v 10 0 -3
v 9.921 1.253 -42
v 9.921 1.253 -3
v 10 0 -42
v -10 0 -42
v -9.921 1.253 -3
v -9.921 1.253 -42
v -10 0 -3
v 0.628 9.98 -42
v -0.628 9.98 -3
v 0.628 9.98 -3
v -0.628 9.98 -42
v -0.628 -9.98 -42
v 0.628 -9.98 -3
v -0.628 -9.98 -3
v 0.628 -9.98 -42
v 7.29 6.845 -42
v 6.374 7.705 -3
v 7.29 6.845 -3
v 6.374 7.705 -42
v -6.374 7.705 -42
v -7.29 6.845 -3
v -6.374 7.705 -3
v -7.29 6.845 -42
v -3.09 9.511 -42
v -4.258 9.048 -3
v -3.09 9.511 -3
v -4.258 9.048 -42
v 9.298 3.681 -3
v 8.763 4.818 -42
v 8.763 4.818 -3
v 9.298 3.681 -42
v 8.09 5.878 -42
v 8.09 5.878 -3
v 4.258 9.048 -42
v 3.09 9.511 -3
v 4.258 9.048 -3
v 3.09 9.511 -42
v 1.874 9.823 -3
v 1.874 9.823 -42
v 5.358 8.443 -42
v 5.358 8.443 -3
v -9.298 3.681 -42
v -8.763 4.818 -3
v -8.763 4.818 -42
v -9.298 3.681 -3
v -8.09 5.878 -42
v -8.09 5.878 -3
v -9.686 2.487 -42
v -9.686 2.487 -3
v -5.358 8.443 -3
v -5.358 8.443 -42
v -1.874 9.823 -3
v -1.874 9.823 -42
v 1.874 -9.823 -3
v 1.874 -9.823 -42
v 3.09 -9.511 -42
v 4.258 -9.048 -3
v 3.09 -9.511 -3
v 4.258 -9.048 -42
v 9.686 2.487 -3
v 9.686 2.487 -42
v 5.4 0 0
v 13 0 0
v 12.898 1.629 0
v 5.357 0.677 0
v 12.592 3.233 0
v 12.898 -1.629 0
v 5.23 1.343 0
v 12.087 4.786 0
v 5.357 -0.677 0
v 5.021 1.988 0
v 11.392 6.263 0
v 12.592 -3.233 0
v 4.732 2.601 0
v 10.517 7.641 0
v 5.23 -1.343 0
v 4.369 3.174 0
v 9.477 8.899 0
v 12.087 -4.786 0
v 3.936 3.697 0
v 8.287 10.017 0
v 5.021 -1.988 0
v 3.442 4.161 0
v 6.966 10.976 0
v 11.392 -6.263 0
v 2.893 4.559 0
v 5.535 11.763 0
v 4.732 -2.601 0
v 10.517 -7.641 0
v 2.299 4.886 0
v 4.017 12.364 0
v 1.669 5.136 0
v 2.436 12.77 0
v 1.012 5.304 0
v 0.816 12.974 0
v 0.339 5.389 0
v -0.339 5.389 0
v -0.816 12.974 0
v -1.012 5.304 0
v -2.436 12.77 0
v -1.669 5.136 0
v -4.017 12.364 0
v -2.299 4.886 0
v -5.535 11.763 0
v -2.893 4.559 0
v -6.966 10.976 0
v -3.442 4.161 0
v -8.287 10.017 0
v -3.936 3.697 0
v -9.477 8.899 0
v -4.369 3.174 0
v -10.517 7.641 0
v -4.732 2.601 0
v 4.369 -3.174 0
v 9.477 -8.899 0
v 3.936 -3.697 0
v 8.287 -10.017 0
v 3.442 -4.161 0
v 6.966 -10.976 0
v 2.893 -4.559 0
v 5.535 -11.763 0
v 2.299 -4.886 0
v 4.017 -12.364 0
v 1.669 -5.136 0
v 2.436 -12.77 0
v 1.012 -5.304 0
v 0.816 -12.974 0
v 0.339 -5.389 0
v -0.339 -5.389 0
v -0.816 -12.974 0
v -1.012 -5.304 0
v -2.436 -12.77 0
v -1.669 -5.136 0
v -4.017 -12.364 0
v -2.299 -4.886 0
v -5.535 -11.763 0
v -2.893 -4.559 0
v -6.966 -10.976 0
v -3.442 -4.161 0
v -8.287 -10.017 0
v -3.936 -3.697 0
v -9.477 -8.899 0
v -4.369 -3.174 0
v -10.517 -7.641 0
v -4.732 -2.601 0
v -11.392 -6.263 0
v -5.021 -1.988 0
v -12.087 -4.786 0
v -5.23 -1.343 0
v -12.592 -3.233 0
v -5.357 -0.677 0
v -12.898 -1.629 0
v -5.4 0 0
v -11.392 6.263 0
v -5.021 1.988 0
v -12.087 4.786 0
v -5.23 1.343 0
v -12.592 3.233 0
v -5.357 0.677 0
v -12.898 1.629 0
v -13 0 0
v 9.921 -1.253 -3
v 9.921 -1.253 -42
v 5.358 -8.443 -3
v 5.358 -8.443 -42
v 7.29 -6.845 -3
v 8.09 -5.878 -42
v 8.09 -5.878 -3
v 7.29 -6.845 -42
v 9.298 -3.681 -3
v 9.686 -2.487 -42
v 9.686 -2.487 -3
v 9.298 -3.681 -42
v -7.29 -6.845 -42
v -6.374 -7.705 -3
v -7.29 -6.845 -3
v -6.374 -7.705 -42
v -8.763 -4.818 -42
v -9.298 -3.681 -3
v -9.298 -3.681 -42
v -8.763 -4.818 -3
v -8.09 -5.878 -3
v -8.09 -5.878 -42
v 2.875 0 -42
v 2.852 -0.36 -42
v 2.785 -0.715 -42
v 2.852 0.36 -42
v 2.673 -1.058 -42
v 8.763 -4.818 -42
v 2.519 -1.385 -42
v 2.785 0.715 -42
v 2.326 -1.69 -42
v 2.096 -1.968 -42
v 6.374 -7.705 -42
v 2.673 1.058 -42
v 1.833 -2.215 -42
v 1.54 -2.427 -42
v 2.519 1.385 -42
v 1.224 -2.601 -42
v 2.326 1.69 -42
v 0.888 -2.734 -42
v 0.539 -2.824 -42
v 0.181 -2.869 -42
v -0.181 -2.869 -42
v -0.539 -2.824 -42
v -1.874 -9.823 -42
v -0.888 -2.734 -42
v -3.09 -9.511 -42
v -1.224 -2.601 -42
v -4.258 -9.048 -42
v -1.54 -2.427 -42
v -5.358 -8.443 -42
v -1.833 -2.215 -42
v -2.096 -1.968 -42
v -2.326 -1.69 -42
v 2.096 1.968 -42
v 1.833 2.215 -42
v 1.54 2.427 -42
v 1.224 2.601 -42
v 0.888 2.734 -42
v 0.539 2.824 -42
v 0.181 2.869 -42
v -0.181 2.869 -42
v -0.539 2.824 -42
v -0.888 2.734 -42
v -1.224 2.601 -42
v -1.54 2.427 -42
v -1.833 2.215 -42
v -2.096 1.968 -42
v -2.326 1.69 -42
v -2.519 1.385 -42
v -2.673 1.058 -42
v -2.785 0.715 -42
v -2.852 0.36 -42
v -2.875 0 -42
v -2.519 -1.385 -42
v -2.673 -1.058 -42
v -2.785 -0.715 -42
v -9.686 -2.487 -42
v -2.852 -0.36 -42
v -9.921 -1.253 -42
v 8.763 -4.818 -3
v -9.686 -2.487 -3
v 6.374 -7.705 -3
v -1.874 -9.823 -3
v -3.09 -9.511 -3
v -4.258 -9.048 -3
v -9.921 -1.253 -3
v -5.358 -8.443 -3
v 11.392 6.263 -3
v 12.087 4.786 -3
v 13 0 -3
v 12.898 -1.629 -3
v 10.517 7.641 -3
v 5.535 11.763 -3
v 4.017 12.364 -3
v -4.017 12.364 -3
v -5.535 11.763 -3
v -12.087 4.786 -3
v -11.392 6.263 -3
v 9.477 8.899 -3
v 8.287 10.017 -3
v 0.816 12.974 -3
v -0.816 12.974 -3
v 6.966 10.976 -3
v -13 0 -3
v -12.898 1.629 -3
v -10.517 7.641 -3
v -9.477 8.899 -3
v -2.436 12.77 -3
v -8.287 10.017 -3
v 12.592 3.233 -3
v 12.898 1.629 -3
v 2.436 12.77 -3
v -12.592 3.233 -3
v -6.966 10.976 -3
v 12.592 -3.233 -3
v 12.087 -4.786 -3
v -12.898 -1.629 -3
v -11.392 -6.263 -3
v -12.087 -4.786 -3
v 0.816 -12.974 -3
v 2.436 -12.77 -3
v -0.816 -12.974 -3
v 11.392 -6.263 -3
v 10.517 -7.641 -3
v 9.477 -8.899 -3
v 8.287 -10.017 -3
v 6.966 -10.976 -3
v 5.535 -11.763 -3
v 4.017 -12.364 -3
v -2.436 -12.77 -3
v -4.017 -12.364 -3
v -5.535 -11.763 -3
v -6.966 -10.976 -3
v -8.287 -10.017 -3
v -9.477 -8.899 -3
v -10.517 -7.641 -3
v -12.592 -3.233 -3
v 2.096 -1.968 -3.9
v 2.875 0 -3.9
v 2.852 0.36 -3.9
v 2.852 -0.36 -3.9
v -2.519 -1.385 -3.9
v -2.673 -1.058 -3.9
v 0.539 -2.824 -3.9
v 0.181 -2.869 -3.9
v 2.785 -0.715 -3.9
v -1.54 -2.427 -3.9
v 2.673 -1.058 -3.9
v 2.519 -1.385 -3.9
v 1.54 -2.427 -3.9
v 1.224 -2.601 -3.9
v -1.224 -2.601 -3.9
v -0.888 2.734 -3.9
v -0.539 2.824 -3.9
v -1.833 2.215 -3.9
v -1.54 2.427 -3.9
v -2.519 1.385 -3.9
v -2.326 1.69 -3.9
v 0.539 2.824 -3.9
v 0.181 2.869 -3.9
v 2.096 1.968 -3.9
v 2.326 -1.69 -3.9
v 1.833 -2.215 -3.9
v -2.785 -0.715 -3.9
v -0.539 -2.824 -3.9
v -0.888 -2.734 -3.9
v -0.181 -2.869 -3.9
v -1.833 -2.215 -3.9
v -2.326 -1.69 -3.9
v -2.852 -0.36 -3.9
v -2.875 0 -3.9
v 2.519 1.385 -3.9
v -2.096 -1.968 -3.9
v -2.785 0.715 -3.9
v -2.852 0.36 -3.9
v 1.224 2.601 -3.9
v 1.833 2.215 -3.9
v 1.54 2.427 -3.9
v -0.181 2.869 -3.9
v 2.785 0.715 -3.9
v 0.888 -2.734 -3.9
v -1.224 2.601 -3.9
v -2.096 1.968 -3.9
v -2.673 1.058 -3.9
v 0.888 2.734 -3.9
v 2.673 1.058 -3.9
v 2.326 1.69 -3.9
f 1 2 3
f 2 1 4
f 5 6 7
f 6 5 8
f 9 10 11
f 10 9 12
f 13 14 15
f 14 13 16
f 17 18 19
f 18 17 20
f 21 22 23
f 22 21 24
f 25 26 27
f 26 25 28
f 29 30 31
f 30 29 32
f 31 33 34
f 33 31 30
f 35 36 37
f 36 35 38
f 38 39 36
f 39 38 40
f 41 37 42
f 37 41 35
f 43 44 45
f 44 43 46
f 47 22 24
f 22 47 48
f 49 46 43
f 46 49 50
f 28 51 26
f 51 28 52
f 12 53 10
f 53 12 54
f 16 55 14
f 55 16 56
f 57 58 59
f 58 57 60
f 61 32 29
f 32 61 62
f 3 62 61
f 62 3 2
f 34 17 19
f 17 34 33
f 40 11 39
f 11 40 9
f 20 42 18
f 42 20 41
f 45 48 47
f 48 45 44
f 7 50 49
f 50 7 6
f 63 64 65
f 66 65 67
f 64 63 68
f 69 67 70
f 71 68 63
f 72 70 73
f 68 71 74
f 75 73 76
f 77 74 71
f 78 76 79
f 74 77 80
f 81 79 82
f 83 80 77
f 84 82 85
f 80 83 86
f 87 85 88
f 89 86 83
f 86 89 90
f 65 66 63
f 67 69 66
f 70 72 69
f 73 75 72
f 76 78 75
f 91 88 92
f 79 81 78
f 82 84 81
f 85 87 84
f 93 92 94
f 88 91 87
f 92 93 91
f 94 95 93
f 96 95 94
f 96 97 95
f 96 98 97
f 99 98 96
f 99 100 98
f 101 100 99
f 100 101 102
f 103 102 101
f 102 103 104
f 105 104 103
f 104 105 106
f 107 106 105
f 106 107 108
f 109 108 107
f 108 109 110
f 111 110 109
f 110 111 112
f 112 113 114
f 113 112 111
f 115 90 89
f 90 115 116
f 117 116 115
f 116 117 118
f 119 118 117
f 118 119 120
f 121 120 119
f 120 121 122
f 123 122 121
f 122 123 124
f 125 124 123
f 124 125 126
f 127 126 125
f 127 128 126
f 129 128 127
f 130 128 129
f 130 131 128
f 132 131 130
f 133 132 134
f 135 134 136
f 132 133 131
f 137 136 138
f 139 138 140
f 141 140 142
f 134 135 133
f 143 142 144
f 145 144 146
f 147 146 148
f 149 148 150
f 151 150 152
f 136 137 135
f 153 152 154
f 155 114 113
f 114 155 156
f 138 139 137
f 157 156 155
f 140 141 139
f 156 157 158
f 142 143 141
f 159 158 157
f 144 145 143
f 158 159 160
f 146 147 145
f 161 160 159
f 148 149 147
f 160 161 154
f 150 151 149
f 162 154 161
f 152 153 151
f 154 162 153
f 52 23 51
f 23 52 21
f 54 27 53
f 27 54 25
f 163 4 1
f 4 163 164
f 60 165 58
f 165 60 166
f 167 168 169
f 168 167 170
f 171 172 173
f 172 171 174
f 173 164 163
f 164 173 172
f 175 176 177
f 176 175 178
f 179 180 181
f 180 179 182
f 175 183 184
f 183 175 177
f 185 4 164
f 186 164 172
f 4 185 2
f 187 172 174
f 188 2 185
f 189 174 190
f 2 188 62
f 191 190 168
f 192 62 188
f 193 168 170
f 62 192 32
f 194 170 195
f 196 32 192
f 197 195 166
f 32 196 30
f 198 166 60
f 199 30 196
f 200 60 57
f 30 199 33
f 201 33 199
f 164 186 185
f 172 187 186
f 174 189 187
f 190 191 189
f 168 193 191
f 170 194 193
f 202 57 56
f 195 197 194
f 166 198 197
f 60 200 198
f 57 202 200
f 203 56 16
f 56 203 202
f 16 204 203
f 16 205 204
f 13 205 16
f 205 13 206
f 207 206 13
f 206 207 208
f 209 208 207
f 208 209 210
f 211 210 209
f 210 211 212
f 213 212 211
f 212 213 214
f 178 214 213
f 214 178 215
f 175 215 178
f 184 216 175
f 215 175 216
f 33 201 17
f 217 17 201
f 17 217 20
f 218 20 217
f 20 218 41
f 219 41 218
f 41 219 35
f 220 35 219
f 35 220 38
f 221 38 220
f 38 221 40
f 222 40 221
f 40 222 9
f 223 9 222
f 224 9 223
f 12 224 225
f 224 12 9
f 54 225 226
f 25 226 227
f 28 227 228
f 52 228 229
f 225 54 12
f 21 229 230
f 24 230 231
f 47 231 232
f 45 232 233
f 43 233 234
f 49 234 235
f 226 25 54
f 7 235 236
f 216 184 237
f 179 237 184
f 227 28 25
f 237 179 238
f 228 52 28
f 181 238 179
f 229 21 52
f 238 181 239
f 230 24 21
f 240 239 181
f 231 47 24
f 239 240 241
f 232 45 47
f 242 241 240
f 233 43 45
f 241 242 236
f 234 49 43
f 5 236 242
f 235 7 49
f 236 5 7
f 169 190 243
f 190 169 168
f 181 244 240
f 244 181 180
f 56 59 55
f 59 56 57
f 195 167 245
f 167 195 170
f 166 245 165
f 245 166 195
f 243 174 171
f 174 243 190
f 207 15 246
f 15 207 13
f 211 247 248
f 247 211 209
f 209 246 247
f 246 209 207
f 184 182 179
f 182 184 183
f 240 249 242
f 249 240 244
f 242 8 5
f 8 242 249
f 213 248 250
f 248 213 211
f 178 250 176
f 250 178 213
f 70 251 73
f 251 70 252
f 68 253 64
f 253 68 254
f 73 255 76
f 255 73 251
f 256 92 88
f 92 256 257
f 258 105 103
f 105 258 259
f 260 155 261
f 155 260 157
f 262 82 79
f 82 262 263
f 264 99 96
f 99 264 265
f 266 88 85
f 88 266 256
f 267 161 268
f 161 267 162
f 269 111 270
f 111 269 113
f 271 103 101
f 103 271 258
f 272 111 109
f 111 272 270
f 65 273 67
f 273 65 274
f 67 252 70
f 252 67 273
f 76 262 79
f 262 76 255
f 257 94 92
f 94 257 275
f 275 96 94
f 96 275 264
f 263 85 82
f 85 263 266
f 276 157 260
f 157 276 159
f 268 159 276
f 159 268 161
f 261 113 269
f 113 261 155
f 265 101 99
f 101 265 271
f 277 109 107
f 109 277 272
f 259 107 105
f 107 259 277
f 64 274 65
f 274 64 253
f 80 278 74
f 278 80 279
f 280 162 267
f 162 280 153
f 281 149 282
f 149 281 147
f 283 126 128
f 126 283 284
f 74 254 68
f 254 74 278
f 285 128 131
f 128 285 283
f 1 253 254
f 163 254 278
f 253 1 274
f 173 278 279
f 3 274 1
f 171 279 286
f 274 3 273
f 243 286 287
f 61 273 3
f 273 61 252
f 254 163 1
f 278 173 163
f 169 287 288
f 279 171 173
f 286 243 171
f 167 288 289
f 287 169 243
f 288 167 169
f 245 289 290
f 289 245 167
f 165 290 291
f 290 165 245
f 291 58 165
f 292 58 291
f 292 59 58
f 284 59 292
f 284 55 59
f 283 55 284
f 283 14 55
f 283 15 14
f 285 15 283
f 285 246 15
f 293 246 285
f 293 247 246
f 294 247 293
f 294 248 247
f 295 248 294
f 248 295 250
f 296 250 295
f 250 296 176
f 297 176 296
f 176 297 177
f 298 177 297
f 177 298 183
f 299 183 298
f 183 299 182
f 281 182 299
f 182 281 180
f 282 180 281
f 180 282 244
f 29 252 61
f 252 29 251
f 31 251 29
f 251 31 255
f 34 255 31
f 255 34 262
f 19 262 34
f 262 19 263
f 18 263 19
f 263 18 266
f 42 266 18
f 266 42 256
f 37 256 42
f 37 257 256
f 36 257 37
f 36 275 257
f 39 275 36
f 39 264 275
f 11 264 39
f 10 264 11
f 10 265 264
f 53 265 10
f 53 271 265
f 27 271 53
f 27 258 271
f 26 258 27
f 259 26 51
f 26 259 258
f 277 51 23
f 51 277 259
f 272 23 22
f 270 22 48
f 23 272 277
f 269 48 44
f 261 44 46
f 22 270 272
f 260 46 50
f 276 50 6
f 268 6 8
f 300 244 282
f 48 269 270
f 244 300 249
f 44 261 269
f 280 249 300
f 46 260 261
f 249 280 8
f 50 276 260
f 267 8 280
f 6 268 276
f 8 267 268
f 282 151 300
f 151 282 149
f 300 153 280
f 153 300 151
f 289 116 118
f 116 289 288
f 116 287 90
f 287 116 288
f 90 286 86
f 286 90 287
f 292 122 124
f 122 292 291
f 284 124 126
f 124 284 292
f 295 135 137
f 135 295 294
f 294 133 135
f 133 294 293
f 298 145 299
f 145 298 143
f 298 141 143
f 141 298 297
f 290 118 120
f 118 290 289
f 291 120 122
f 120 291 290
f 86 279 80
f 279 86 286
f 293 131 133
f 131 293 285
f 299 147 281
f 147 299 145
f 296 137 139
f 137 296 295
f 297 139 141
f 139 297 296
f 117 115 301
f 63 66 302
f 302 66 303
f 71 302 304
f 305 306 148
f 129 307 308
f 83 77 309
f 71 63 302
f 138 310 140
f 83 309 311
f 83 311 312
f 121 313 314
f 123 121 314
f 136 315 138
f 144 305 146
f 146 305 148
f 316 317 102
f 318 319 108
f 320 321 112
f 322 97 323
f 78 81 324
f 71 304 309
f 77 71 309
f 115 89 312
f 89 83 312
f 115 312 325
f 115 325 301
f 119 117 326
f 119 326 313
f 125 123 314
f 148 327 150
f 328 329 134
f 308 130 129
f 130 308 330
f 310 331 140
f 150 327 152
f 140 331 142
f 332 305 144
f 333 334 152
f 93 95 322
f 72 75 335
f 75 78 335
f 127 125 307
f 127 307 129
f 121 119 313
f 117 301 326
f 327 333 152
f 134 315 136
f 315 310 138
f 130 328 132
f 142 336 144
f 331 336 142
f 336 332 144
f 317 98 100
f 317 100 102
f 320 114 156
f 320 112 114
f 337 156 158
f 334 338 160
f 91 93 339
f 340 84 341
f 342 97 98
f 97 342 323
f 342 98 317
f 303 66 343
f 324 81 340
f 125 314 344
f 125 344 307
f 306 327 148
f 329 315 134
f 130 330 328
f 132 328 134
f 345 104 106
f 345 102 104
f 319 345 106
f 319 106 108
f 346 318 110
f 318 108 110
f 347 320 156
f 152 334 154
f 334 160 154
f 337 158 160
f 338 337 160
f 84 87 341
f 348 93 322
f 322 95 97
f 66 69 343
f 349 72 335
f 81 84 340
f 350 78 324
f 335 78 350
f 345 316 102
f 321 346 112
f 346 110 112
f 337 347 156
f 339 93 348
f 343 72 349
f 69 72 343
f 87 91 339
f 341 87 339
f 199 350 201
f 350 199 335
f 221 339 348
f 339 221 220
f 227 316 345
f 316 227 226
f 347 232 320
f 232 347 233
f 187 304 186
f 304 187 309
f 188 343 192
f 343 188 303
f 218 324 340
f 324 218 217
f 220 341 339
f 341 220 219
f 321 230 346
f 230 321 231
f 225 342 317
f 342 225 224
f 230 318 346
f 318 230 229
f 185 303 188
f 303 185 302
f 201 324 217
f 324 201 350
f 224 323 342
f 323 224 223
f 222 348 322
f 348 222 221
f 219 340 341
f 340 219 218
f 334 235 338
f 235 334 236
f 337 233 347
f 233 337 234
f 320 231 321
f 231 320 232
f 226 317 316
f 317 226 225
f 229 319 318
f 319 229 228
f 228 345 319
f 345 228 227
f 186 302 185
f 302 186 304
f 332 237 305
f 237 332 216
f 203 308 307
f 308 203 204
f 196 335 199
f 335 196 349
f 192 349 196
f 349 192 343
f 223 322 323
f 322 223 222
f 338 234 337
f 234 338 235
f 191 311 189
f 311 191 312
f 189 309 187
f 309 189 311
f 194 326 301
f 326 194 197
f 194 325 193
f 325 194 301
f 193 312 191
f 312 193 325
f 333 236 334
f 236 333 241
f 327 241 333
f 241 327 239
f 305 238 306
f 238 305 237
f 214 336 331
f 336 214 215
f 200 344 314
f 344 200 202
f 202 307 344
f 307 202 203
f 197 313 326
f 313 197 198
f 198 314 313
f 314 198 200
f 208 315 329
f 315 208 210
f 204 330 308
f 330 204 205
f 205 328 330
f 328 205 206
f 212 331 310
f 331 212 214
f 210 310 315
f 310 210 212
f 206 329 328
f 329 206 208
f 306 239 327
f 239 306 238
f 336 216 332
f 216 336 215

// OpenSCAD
$fn = 50;


difference() {
	union() {
		translate(v = [0, 0, -42.0000000000]) {
			cylinder(h = 42, r = 10.0000000000);
		}
		translate(v = [0, 0, -3.0000000000]) {
			cylinder(h = 3, r = 13.0000000000);
		}
	}
	union() {
		translate(v = [0, 0, 0]) {
			rotate(a = [0, 0, 0]) {
				difference() {
					union() {
						#translate(v = [0, 0, -42.0000000000]) {
							cylinder(h = 42, r = 2.6000000000);
						}
						#translate(v = [0, 0, -3.9000000000]) {
							cylinder(h = 3.9000000000, r = 10.0000000000, r1 = 2.8750000000, r2 = 5.4000000000);
						}
						#translate(v = [0, 0, -42.0000000000]) {
							cylinder(h = 42, r = 2.8750000000);
						}
						#translate(v = [0, 0, -42.0000000000]) {
							cylinder(h = 42, r = 2.6000000000);
						}
					}
					union();
				}
			}
		}
	}
}
